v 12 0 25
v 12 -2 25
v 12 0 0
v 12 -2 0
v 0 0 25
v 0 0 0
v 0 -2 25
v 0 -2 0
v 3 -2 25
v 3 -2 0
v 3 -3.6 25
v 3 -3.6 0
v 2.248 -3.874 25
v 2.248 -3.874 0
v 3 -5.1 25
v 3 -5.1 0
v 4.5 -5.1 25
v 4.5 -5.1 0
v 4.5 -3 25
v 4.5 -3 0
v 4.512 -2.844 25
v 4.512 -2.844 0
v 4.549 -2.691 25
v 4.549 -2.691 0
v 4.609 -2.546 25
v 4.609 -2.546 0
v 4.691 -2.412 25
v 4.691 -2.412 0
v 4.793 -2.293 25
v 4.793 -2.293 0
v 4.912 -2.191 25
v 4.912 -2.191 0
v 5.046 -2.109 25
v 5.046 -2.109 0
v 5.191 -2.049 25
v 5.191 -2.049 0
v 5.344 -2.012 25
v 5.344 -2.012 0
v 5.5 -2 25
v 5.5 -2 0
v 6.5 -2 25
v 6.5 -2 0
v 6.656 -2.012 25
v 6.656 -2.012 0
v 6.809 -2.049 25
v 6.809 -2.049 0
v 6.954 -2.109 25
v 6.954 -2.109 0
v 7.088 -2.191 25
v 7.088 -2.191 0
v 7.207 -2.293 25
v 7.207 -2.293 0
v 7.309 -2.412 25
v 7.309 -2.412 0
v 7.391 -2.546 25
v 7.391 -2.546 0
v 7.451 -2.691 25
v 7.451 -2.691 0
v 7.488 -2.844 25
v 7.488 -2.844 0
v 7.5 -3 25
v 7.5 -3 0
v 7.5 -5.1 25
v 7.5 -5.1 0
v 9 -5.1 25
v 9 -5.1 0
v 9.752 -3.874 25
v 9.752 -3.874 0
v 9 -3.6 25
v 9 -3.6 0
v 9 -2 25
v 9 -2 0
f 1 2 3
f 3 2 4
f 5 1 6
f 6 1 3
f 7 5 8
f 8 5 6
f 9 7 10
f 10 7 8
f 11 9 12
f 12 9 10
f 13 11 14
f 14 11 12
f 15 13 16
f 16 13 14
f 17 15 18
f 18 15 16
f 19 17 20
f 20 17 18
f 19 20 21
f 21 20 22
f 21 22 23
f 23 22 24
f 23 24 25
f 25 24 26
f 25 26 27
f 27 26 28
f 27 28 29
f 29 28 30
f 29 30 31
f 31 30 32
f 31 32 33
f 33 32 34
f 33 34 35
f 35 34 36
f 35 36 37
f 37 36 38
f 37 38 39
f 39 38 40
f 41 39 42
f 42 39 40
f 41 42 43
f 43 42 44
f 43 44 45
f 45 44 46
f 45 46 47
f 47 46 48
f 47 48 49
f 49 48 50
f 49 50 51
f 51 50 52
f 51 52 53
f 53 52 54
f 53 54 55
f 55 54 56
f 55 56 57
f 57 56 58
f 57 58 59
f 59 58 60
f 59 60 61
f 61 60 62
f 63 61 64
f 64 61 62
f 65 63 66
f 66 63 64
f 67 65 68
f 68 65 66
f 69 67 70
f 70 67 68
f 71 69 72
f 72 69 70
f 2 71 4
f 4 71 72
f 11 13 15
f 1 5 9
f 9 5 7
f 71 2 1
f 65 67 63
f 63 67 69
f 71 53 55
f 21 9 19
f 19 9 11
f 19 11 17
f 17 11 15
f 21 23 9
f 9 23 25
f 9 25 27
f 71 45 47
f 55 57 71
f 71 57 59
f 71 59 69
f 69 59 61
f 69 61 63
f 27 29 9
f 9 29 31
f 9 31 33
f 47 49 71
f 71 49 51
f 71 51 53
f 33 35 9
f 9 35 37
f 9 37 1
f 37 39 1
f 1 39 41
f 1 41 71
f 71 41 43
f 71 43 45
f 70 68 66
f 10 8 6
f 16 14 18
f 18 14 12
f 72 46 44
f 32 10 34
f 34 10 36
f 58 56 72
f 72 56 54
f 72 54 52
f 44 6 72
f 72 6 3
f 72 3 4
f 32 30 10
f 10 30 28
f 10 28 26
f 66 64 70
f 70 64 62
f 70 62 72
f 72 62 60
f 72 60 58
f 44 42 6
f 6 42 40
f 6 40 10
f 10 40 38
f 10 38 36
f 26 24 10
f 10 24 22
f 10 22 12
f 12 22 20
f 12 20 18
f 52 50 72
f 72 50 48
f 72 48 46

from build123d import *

# Parameters (mm, degrees)
BOSS_EXTRUDE1_DEPTH = 25


with BuildPart() as part:
    # Sketch1 → Boss-Extrude1 (new body)
    with BuildSketch(Plane.XY):
        with BuildLine():
            Line((0, 0), (12, 0))
            Line((12, 0), (12, -2))
            Line((12, -2), (9, -2))
            Line((9, -2), (9, -3.6))
            Line((9, -3.6), (9.751754097, -3.873616115))
            Line((9.751754097, -3.873616115), (9, -5.1))
            Line((9, -5.1), (7.5, -5.1))
            Line((7.5, -5.1), (7.5, -3))
            ThreePointArc((7.5, -3), (7.207106781, -2.292893219), (6.5, -2))
            Line((6.5, -2), (5.5, -2))
            ThreePointArc((5.5, -2), (4.792893219, -2.292893219), (4.5, -3))
            Line((4.5, -3), (4.5, -5.1))
            Line((4.5, -5.1), (3, -5.1))
            Line((3, -5.1), (2.248245903, -3.873616115))
            Line((2.248245903, -3.873616115), (3, -3.6))
            Line((3, -3.6), (3, -2))
            Line((3, -2), (0, -2))
            Line((0, -2), (0, 0))
        make_face()
    extrude(amount=BOSS_EXTRUDE1_DEPTH)


solid = part.part
